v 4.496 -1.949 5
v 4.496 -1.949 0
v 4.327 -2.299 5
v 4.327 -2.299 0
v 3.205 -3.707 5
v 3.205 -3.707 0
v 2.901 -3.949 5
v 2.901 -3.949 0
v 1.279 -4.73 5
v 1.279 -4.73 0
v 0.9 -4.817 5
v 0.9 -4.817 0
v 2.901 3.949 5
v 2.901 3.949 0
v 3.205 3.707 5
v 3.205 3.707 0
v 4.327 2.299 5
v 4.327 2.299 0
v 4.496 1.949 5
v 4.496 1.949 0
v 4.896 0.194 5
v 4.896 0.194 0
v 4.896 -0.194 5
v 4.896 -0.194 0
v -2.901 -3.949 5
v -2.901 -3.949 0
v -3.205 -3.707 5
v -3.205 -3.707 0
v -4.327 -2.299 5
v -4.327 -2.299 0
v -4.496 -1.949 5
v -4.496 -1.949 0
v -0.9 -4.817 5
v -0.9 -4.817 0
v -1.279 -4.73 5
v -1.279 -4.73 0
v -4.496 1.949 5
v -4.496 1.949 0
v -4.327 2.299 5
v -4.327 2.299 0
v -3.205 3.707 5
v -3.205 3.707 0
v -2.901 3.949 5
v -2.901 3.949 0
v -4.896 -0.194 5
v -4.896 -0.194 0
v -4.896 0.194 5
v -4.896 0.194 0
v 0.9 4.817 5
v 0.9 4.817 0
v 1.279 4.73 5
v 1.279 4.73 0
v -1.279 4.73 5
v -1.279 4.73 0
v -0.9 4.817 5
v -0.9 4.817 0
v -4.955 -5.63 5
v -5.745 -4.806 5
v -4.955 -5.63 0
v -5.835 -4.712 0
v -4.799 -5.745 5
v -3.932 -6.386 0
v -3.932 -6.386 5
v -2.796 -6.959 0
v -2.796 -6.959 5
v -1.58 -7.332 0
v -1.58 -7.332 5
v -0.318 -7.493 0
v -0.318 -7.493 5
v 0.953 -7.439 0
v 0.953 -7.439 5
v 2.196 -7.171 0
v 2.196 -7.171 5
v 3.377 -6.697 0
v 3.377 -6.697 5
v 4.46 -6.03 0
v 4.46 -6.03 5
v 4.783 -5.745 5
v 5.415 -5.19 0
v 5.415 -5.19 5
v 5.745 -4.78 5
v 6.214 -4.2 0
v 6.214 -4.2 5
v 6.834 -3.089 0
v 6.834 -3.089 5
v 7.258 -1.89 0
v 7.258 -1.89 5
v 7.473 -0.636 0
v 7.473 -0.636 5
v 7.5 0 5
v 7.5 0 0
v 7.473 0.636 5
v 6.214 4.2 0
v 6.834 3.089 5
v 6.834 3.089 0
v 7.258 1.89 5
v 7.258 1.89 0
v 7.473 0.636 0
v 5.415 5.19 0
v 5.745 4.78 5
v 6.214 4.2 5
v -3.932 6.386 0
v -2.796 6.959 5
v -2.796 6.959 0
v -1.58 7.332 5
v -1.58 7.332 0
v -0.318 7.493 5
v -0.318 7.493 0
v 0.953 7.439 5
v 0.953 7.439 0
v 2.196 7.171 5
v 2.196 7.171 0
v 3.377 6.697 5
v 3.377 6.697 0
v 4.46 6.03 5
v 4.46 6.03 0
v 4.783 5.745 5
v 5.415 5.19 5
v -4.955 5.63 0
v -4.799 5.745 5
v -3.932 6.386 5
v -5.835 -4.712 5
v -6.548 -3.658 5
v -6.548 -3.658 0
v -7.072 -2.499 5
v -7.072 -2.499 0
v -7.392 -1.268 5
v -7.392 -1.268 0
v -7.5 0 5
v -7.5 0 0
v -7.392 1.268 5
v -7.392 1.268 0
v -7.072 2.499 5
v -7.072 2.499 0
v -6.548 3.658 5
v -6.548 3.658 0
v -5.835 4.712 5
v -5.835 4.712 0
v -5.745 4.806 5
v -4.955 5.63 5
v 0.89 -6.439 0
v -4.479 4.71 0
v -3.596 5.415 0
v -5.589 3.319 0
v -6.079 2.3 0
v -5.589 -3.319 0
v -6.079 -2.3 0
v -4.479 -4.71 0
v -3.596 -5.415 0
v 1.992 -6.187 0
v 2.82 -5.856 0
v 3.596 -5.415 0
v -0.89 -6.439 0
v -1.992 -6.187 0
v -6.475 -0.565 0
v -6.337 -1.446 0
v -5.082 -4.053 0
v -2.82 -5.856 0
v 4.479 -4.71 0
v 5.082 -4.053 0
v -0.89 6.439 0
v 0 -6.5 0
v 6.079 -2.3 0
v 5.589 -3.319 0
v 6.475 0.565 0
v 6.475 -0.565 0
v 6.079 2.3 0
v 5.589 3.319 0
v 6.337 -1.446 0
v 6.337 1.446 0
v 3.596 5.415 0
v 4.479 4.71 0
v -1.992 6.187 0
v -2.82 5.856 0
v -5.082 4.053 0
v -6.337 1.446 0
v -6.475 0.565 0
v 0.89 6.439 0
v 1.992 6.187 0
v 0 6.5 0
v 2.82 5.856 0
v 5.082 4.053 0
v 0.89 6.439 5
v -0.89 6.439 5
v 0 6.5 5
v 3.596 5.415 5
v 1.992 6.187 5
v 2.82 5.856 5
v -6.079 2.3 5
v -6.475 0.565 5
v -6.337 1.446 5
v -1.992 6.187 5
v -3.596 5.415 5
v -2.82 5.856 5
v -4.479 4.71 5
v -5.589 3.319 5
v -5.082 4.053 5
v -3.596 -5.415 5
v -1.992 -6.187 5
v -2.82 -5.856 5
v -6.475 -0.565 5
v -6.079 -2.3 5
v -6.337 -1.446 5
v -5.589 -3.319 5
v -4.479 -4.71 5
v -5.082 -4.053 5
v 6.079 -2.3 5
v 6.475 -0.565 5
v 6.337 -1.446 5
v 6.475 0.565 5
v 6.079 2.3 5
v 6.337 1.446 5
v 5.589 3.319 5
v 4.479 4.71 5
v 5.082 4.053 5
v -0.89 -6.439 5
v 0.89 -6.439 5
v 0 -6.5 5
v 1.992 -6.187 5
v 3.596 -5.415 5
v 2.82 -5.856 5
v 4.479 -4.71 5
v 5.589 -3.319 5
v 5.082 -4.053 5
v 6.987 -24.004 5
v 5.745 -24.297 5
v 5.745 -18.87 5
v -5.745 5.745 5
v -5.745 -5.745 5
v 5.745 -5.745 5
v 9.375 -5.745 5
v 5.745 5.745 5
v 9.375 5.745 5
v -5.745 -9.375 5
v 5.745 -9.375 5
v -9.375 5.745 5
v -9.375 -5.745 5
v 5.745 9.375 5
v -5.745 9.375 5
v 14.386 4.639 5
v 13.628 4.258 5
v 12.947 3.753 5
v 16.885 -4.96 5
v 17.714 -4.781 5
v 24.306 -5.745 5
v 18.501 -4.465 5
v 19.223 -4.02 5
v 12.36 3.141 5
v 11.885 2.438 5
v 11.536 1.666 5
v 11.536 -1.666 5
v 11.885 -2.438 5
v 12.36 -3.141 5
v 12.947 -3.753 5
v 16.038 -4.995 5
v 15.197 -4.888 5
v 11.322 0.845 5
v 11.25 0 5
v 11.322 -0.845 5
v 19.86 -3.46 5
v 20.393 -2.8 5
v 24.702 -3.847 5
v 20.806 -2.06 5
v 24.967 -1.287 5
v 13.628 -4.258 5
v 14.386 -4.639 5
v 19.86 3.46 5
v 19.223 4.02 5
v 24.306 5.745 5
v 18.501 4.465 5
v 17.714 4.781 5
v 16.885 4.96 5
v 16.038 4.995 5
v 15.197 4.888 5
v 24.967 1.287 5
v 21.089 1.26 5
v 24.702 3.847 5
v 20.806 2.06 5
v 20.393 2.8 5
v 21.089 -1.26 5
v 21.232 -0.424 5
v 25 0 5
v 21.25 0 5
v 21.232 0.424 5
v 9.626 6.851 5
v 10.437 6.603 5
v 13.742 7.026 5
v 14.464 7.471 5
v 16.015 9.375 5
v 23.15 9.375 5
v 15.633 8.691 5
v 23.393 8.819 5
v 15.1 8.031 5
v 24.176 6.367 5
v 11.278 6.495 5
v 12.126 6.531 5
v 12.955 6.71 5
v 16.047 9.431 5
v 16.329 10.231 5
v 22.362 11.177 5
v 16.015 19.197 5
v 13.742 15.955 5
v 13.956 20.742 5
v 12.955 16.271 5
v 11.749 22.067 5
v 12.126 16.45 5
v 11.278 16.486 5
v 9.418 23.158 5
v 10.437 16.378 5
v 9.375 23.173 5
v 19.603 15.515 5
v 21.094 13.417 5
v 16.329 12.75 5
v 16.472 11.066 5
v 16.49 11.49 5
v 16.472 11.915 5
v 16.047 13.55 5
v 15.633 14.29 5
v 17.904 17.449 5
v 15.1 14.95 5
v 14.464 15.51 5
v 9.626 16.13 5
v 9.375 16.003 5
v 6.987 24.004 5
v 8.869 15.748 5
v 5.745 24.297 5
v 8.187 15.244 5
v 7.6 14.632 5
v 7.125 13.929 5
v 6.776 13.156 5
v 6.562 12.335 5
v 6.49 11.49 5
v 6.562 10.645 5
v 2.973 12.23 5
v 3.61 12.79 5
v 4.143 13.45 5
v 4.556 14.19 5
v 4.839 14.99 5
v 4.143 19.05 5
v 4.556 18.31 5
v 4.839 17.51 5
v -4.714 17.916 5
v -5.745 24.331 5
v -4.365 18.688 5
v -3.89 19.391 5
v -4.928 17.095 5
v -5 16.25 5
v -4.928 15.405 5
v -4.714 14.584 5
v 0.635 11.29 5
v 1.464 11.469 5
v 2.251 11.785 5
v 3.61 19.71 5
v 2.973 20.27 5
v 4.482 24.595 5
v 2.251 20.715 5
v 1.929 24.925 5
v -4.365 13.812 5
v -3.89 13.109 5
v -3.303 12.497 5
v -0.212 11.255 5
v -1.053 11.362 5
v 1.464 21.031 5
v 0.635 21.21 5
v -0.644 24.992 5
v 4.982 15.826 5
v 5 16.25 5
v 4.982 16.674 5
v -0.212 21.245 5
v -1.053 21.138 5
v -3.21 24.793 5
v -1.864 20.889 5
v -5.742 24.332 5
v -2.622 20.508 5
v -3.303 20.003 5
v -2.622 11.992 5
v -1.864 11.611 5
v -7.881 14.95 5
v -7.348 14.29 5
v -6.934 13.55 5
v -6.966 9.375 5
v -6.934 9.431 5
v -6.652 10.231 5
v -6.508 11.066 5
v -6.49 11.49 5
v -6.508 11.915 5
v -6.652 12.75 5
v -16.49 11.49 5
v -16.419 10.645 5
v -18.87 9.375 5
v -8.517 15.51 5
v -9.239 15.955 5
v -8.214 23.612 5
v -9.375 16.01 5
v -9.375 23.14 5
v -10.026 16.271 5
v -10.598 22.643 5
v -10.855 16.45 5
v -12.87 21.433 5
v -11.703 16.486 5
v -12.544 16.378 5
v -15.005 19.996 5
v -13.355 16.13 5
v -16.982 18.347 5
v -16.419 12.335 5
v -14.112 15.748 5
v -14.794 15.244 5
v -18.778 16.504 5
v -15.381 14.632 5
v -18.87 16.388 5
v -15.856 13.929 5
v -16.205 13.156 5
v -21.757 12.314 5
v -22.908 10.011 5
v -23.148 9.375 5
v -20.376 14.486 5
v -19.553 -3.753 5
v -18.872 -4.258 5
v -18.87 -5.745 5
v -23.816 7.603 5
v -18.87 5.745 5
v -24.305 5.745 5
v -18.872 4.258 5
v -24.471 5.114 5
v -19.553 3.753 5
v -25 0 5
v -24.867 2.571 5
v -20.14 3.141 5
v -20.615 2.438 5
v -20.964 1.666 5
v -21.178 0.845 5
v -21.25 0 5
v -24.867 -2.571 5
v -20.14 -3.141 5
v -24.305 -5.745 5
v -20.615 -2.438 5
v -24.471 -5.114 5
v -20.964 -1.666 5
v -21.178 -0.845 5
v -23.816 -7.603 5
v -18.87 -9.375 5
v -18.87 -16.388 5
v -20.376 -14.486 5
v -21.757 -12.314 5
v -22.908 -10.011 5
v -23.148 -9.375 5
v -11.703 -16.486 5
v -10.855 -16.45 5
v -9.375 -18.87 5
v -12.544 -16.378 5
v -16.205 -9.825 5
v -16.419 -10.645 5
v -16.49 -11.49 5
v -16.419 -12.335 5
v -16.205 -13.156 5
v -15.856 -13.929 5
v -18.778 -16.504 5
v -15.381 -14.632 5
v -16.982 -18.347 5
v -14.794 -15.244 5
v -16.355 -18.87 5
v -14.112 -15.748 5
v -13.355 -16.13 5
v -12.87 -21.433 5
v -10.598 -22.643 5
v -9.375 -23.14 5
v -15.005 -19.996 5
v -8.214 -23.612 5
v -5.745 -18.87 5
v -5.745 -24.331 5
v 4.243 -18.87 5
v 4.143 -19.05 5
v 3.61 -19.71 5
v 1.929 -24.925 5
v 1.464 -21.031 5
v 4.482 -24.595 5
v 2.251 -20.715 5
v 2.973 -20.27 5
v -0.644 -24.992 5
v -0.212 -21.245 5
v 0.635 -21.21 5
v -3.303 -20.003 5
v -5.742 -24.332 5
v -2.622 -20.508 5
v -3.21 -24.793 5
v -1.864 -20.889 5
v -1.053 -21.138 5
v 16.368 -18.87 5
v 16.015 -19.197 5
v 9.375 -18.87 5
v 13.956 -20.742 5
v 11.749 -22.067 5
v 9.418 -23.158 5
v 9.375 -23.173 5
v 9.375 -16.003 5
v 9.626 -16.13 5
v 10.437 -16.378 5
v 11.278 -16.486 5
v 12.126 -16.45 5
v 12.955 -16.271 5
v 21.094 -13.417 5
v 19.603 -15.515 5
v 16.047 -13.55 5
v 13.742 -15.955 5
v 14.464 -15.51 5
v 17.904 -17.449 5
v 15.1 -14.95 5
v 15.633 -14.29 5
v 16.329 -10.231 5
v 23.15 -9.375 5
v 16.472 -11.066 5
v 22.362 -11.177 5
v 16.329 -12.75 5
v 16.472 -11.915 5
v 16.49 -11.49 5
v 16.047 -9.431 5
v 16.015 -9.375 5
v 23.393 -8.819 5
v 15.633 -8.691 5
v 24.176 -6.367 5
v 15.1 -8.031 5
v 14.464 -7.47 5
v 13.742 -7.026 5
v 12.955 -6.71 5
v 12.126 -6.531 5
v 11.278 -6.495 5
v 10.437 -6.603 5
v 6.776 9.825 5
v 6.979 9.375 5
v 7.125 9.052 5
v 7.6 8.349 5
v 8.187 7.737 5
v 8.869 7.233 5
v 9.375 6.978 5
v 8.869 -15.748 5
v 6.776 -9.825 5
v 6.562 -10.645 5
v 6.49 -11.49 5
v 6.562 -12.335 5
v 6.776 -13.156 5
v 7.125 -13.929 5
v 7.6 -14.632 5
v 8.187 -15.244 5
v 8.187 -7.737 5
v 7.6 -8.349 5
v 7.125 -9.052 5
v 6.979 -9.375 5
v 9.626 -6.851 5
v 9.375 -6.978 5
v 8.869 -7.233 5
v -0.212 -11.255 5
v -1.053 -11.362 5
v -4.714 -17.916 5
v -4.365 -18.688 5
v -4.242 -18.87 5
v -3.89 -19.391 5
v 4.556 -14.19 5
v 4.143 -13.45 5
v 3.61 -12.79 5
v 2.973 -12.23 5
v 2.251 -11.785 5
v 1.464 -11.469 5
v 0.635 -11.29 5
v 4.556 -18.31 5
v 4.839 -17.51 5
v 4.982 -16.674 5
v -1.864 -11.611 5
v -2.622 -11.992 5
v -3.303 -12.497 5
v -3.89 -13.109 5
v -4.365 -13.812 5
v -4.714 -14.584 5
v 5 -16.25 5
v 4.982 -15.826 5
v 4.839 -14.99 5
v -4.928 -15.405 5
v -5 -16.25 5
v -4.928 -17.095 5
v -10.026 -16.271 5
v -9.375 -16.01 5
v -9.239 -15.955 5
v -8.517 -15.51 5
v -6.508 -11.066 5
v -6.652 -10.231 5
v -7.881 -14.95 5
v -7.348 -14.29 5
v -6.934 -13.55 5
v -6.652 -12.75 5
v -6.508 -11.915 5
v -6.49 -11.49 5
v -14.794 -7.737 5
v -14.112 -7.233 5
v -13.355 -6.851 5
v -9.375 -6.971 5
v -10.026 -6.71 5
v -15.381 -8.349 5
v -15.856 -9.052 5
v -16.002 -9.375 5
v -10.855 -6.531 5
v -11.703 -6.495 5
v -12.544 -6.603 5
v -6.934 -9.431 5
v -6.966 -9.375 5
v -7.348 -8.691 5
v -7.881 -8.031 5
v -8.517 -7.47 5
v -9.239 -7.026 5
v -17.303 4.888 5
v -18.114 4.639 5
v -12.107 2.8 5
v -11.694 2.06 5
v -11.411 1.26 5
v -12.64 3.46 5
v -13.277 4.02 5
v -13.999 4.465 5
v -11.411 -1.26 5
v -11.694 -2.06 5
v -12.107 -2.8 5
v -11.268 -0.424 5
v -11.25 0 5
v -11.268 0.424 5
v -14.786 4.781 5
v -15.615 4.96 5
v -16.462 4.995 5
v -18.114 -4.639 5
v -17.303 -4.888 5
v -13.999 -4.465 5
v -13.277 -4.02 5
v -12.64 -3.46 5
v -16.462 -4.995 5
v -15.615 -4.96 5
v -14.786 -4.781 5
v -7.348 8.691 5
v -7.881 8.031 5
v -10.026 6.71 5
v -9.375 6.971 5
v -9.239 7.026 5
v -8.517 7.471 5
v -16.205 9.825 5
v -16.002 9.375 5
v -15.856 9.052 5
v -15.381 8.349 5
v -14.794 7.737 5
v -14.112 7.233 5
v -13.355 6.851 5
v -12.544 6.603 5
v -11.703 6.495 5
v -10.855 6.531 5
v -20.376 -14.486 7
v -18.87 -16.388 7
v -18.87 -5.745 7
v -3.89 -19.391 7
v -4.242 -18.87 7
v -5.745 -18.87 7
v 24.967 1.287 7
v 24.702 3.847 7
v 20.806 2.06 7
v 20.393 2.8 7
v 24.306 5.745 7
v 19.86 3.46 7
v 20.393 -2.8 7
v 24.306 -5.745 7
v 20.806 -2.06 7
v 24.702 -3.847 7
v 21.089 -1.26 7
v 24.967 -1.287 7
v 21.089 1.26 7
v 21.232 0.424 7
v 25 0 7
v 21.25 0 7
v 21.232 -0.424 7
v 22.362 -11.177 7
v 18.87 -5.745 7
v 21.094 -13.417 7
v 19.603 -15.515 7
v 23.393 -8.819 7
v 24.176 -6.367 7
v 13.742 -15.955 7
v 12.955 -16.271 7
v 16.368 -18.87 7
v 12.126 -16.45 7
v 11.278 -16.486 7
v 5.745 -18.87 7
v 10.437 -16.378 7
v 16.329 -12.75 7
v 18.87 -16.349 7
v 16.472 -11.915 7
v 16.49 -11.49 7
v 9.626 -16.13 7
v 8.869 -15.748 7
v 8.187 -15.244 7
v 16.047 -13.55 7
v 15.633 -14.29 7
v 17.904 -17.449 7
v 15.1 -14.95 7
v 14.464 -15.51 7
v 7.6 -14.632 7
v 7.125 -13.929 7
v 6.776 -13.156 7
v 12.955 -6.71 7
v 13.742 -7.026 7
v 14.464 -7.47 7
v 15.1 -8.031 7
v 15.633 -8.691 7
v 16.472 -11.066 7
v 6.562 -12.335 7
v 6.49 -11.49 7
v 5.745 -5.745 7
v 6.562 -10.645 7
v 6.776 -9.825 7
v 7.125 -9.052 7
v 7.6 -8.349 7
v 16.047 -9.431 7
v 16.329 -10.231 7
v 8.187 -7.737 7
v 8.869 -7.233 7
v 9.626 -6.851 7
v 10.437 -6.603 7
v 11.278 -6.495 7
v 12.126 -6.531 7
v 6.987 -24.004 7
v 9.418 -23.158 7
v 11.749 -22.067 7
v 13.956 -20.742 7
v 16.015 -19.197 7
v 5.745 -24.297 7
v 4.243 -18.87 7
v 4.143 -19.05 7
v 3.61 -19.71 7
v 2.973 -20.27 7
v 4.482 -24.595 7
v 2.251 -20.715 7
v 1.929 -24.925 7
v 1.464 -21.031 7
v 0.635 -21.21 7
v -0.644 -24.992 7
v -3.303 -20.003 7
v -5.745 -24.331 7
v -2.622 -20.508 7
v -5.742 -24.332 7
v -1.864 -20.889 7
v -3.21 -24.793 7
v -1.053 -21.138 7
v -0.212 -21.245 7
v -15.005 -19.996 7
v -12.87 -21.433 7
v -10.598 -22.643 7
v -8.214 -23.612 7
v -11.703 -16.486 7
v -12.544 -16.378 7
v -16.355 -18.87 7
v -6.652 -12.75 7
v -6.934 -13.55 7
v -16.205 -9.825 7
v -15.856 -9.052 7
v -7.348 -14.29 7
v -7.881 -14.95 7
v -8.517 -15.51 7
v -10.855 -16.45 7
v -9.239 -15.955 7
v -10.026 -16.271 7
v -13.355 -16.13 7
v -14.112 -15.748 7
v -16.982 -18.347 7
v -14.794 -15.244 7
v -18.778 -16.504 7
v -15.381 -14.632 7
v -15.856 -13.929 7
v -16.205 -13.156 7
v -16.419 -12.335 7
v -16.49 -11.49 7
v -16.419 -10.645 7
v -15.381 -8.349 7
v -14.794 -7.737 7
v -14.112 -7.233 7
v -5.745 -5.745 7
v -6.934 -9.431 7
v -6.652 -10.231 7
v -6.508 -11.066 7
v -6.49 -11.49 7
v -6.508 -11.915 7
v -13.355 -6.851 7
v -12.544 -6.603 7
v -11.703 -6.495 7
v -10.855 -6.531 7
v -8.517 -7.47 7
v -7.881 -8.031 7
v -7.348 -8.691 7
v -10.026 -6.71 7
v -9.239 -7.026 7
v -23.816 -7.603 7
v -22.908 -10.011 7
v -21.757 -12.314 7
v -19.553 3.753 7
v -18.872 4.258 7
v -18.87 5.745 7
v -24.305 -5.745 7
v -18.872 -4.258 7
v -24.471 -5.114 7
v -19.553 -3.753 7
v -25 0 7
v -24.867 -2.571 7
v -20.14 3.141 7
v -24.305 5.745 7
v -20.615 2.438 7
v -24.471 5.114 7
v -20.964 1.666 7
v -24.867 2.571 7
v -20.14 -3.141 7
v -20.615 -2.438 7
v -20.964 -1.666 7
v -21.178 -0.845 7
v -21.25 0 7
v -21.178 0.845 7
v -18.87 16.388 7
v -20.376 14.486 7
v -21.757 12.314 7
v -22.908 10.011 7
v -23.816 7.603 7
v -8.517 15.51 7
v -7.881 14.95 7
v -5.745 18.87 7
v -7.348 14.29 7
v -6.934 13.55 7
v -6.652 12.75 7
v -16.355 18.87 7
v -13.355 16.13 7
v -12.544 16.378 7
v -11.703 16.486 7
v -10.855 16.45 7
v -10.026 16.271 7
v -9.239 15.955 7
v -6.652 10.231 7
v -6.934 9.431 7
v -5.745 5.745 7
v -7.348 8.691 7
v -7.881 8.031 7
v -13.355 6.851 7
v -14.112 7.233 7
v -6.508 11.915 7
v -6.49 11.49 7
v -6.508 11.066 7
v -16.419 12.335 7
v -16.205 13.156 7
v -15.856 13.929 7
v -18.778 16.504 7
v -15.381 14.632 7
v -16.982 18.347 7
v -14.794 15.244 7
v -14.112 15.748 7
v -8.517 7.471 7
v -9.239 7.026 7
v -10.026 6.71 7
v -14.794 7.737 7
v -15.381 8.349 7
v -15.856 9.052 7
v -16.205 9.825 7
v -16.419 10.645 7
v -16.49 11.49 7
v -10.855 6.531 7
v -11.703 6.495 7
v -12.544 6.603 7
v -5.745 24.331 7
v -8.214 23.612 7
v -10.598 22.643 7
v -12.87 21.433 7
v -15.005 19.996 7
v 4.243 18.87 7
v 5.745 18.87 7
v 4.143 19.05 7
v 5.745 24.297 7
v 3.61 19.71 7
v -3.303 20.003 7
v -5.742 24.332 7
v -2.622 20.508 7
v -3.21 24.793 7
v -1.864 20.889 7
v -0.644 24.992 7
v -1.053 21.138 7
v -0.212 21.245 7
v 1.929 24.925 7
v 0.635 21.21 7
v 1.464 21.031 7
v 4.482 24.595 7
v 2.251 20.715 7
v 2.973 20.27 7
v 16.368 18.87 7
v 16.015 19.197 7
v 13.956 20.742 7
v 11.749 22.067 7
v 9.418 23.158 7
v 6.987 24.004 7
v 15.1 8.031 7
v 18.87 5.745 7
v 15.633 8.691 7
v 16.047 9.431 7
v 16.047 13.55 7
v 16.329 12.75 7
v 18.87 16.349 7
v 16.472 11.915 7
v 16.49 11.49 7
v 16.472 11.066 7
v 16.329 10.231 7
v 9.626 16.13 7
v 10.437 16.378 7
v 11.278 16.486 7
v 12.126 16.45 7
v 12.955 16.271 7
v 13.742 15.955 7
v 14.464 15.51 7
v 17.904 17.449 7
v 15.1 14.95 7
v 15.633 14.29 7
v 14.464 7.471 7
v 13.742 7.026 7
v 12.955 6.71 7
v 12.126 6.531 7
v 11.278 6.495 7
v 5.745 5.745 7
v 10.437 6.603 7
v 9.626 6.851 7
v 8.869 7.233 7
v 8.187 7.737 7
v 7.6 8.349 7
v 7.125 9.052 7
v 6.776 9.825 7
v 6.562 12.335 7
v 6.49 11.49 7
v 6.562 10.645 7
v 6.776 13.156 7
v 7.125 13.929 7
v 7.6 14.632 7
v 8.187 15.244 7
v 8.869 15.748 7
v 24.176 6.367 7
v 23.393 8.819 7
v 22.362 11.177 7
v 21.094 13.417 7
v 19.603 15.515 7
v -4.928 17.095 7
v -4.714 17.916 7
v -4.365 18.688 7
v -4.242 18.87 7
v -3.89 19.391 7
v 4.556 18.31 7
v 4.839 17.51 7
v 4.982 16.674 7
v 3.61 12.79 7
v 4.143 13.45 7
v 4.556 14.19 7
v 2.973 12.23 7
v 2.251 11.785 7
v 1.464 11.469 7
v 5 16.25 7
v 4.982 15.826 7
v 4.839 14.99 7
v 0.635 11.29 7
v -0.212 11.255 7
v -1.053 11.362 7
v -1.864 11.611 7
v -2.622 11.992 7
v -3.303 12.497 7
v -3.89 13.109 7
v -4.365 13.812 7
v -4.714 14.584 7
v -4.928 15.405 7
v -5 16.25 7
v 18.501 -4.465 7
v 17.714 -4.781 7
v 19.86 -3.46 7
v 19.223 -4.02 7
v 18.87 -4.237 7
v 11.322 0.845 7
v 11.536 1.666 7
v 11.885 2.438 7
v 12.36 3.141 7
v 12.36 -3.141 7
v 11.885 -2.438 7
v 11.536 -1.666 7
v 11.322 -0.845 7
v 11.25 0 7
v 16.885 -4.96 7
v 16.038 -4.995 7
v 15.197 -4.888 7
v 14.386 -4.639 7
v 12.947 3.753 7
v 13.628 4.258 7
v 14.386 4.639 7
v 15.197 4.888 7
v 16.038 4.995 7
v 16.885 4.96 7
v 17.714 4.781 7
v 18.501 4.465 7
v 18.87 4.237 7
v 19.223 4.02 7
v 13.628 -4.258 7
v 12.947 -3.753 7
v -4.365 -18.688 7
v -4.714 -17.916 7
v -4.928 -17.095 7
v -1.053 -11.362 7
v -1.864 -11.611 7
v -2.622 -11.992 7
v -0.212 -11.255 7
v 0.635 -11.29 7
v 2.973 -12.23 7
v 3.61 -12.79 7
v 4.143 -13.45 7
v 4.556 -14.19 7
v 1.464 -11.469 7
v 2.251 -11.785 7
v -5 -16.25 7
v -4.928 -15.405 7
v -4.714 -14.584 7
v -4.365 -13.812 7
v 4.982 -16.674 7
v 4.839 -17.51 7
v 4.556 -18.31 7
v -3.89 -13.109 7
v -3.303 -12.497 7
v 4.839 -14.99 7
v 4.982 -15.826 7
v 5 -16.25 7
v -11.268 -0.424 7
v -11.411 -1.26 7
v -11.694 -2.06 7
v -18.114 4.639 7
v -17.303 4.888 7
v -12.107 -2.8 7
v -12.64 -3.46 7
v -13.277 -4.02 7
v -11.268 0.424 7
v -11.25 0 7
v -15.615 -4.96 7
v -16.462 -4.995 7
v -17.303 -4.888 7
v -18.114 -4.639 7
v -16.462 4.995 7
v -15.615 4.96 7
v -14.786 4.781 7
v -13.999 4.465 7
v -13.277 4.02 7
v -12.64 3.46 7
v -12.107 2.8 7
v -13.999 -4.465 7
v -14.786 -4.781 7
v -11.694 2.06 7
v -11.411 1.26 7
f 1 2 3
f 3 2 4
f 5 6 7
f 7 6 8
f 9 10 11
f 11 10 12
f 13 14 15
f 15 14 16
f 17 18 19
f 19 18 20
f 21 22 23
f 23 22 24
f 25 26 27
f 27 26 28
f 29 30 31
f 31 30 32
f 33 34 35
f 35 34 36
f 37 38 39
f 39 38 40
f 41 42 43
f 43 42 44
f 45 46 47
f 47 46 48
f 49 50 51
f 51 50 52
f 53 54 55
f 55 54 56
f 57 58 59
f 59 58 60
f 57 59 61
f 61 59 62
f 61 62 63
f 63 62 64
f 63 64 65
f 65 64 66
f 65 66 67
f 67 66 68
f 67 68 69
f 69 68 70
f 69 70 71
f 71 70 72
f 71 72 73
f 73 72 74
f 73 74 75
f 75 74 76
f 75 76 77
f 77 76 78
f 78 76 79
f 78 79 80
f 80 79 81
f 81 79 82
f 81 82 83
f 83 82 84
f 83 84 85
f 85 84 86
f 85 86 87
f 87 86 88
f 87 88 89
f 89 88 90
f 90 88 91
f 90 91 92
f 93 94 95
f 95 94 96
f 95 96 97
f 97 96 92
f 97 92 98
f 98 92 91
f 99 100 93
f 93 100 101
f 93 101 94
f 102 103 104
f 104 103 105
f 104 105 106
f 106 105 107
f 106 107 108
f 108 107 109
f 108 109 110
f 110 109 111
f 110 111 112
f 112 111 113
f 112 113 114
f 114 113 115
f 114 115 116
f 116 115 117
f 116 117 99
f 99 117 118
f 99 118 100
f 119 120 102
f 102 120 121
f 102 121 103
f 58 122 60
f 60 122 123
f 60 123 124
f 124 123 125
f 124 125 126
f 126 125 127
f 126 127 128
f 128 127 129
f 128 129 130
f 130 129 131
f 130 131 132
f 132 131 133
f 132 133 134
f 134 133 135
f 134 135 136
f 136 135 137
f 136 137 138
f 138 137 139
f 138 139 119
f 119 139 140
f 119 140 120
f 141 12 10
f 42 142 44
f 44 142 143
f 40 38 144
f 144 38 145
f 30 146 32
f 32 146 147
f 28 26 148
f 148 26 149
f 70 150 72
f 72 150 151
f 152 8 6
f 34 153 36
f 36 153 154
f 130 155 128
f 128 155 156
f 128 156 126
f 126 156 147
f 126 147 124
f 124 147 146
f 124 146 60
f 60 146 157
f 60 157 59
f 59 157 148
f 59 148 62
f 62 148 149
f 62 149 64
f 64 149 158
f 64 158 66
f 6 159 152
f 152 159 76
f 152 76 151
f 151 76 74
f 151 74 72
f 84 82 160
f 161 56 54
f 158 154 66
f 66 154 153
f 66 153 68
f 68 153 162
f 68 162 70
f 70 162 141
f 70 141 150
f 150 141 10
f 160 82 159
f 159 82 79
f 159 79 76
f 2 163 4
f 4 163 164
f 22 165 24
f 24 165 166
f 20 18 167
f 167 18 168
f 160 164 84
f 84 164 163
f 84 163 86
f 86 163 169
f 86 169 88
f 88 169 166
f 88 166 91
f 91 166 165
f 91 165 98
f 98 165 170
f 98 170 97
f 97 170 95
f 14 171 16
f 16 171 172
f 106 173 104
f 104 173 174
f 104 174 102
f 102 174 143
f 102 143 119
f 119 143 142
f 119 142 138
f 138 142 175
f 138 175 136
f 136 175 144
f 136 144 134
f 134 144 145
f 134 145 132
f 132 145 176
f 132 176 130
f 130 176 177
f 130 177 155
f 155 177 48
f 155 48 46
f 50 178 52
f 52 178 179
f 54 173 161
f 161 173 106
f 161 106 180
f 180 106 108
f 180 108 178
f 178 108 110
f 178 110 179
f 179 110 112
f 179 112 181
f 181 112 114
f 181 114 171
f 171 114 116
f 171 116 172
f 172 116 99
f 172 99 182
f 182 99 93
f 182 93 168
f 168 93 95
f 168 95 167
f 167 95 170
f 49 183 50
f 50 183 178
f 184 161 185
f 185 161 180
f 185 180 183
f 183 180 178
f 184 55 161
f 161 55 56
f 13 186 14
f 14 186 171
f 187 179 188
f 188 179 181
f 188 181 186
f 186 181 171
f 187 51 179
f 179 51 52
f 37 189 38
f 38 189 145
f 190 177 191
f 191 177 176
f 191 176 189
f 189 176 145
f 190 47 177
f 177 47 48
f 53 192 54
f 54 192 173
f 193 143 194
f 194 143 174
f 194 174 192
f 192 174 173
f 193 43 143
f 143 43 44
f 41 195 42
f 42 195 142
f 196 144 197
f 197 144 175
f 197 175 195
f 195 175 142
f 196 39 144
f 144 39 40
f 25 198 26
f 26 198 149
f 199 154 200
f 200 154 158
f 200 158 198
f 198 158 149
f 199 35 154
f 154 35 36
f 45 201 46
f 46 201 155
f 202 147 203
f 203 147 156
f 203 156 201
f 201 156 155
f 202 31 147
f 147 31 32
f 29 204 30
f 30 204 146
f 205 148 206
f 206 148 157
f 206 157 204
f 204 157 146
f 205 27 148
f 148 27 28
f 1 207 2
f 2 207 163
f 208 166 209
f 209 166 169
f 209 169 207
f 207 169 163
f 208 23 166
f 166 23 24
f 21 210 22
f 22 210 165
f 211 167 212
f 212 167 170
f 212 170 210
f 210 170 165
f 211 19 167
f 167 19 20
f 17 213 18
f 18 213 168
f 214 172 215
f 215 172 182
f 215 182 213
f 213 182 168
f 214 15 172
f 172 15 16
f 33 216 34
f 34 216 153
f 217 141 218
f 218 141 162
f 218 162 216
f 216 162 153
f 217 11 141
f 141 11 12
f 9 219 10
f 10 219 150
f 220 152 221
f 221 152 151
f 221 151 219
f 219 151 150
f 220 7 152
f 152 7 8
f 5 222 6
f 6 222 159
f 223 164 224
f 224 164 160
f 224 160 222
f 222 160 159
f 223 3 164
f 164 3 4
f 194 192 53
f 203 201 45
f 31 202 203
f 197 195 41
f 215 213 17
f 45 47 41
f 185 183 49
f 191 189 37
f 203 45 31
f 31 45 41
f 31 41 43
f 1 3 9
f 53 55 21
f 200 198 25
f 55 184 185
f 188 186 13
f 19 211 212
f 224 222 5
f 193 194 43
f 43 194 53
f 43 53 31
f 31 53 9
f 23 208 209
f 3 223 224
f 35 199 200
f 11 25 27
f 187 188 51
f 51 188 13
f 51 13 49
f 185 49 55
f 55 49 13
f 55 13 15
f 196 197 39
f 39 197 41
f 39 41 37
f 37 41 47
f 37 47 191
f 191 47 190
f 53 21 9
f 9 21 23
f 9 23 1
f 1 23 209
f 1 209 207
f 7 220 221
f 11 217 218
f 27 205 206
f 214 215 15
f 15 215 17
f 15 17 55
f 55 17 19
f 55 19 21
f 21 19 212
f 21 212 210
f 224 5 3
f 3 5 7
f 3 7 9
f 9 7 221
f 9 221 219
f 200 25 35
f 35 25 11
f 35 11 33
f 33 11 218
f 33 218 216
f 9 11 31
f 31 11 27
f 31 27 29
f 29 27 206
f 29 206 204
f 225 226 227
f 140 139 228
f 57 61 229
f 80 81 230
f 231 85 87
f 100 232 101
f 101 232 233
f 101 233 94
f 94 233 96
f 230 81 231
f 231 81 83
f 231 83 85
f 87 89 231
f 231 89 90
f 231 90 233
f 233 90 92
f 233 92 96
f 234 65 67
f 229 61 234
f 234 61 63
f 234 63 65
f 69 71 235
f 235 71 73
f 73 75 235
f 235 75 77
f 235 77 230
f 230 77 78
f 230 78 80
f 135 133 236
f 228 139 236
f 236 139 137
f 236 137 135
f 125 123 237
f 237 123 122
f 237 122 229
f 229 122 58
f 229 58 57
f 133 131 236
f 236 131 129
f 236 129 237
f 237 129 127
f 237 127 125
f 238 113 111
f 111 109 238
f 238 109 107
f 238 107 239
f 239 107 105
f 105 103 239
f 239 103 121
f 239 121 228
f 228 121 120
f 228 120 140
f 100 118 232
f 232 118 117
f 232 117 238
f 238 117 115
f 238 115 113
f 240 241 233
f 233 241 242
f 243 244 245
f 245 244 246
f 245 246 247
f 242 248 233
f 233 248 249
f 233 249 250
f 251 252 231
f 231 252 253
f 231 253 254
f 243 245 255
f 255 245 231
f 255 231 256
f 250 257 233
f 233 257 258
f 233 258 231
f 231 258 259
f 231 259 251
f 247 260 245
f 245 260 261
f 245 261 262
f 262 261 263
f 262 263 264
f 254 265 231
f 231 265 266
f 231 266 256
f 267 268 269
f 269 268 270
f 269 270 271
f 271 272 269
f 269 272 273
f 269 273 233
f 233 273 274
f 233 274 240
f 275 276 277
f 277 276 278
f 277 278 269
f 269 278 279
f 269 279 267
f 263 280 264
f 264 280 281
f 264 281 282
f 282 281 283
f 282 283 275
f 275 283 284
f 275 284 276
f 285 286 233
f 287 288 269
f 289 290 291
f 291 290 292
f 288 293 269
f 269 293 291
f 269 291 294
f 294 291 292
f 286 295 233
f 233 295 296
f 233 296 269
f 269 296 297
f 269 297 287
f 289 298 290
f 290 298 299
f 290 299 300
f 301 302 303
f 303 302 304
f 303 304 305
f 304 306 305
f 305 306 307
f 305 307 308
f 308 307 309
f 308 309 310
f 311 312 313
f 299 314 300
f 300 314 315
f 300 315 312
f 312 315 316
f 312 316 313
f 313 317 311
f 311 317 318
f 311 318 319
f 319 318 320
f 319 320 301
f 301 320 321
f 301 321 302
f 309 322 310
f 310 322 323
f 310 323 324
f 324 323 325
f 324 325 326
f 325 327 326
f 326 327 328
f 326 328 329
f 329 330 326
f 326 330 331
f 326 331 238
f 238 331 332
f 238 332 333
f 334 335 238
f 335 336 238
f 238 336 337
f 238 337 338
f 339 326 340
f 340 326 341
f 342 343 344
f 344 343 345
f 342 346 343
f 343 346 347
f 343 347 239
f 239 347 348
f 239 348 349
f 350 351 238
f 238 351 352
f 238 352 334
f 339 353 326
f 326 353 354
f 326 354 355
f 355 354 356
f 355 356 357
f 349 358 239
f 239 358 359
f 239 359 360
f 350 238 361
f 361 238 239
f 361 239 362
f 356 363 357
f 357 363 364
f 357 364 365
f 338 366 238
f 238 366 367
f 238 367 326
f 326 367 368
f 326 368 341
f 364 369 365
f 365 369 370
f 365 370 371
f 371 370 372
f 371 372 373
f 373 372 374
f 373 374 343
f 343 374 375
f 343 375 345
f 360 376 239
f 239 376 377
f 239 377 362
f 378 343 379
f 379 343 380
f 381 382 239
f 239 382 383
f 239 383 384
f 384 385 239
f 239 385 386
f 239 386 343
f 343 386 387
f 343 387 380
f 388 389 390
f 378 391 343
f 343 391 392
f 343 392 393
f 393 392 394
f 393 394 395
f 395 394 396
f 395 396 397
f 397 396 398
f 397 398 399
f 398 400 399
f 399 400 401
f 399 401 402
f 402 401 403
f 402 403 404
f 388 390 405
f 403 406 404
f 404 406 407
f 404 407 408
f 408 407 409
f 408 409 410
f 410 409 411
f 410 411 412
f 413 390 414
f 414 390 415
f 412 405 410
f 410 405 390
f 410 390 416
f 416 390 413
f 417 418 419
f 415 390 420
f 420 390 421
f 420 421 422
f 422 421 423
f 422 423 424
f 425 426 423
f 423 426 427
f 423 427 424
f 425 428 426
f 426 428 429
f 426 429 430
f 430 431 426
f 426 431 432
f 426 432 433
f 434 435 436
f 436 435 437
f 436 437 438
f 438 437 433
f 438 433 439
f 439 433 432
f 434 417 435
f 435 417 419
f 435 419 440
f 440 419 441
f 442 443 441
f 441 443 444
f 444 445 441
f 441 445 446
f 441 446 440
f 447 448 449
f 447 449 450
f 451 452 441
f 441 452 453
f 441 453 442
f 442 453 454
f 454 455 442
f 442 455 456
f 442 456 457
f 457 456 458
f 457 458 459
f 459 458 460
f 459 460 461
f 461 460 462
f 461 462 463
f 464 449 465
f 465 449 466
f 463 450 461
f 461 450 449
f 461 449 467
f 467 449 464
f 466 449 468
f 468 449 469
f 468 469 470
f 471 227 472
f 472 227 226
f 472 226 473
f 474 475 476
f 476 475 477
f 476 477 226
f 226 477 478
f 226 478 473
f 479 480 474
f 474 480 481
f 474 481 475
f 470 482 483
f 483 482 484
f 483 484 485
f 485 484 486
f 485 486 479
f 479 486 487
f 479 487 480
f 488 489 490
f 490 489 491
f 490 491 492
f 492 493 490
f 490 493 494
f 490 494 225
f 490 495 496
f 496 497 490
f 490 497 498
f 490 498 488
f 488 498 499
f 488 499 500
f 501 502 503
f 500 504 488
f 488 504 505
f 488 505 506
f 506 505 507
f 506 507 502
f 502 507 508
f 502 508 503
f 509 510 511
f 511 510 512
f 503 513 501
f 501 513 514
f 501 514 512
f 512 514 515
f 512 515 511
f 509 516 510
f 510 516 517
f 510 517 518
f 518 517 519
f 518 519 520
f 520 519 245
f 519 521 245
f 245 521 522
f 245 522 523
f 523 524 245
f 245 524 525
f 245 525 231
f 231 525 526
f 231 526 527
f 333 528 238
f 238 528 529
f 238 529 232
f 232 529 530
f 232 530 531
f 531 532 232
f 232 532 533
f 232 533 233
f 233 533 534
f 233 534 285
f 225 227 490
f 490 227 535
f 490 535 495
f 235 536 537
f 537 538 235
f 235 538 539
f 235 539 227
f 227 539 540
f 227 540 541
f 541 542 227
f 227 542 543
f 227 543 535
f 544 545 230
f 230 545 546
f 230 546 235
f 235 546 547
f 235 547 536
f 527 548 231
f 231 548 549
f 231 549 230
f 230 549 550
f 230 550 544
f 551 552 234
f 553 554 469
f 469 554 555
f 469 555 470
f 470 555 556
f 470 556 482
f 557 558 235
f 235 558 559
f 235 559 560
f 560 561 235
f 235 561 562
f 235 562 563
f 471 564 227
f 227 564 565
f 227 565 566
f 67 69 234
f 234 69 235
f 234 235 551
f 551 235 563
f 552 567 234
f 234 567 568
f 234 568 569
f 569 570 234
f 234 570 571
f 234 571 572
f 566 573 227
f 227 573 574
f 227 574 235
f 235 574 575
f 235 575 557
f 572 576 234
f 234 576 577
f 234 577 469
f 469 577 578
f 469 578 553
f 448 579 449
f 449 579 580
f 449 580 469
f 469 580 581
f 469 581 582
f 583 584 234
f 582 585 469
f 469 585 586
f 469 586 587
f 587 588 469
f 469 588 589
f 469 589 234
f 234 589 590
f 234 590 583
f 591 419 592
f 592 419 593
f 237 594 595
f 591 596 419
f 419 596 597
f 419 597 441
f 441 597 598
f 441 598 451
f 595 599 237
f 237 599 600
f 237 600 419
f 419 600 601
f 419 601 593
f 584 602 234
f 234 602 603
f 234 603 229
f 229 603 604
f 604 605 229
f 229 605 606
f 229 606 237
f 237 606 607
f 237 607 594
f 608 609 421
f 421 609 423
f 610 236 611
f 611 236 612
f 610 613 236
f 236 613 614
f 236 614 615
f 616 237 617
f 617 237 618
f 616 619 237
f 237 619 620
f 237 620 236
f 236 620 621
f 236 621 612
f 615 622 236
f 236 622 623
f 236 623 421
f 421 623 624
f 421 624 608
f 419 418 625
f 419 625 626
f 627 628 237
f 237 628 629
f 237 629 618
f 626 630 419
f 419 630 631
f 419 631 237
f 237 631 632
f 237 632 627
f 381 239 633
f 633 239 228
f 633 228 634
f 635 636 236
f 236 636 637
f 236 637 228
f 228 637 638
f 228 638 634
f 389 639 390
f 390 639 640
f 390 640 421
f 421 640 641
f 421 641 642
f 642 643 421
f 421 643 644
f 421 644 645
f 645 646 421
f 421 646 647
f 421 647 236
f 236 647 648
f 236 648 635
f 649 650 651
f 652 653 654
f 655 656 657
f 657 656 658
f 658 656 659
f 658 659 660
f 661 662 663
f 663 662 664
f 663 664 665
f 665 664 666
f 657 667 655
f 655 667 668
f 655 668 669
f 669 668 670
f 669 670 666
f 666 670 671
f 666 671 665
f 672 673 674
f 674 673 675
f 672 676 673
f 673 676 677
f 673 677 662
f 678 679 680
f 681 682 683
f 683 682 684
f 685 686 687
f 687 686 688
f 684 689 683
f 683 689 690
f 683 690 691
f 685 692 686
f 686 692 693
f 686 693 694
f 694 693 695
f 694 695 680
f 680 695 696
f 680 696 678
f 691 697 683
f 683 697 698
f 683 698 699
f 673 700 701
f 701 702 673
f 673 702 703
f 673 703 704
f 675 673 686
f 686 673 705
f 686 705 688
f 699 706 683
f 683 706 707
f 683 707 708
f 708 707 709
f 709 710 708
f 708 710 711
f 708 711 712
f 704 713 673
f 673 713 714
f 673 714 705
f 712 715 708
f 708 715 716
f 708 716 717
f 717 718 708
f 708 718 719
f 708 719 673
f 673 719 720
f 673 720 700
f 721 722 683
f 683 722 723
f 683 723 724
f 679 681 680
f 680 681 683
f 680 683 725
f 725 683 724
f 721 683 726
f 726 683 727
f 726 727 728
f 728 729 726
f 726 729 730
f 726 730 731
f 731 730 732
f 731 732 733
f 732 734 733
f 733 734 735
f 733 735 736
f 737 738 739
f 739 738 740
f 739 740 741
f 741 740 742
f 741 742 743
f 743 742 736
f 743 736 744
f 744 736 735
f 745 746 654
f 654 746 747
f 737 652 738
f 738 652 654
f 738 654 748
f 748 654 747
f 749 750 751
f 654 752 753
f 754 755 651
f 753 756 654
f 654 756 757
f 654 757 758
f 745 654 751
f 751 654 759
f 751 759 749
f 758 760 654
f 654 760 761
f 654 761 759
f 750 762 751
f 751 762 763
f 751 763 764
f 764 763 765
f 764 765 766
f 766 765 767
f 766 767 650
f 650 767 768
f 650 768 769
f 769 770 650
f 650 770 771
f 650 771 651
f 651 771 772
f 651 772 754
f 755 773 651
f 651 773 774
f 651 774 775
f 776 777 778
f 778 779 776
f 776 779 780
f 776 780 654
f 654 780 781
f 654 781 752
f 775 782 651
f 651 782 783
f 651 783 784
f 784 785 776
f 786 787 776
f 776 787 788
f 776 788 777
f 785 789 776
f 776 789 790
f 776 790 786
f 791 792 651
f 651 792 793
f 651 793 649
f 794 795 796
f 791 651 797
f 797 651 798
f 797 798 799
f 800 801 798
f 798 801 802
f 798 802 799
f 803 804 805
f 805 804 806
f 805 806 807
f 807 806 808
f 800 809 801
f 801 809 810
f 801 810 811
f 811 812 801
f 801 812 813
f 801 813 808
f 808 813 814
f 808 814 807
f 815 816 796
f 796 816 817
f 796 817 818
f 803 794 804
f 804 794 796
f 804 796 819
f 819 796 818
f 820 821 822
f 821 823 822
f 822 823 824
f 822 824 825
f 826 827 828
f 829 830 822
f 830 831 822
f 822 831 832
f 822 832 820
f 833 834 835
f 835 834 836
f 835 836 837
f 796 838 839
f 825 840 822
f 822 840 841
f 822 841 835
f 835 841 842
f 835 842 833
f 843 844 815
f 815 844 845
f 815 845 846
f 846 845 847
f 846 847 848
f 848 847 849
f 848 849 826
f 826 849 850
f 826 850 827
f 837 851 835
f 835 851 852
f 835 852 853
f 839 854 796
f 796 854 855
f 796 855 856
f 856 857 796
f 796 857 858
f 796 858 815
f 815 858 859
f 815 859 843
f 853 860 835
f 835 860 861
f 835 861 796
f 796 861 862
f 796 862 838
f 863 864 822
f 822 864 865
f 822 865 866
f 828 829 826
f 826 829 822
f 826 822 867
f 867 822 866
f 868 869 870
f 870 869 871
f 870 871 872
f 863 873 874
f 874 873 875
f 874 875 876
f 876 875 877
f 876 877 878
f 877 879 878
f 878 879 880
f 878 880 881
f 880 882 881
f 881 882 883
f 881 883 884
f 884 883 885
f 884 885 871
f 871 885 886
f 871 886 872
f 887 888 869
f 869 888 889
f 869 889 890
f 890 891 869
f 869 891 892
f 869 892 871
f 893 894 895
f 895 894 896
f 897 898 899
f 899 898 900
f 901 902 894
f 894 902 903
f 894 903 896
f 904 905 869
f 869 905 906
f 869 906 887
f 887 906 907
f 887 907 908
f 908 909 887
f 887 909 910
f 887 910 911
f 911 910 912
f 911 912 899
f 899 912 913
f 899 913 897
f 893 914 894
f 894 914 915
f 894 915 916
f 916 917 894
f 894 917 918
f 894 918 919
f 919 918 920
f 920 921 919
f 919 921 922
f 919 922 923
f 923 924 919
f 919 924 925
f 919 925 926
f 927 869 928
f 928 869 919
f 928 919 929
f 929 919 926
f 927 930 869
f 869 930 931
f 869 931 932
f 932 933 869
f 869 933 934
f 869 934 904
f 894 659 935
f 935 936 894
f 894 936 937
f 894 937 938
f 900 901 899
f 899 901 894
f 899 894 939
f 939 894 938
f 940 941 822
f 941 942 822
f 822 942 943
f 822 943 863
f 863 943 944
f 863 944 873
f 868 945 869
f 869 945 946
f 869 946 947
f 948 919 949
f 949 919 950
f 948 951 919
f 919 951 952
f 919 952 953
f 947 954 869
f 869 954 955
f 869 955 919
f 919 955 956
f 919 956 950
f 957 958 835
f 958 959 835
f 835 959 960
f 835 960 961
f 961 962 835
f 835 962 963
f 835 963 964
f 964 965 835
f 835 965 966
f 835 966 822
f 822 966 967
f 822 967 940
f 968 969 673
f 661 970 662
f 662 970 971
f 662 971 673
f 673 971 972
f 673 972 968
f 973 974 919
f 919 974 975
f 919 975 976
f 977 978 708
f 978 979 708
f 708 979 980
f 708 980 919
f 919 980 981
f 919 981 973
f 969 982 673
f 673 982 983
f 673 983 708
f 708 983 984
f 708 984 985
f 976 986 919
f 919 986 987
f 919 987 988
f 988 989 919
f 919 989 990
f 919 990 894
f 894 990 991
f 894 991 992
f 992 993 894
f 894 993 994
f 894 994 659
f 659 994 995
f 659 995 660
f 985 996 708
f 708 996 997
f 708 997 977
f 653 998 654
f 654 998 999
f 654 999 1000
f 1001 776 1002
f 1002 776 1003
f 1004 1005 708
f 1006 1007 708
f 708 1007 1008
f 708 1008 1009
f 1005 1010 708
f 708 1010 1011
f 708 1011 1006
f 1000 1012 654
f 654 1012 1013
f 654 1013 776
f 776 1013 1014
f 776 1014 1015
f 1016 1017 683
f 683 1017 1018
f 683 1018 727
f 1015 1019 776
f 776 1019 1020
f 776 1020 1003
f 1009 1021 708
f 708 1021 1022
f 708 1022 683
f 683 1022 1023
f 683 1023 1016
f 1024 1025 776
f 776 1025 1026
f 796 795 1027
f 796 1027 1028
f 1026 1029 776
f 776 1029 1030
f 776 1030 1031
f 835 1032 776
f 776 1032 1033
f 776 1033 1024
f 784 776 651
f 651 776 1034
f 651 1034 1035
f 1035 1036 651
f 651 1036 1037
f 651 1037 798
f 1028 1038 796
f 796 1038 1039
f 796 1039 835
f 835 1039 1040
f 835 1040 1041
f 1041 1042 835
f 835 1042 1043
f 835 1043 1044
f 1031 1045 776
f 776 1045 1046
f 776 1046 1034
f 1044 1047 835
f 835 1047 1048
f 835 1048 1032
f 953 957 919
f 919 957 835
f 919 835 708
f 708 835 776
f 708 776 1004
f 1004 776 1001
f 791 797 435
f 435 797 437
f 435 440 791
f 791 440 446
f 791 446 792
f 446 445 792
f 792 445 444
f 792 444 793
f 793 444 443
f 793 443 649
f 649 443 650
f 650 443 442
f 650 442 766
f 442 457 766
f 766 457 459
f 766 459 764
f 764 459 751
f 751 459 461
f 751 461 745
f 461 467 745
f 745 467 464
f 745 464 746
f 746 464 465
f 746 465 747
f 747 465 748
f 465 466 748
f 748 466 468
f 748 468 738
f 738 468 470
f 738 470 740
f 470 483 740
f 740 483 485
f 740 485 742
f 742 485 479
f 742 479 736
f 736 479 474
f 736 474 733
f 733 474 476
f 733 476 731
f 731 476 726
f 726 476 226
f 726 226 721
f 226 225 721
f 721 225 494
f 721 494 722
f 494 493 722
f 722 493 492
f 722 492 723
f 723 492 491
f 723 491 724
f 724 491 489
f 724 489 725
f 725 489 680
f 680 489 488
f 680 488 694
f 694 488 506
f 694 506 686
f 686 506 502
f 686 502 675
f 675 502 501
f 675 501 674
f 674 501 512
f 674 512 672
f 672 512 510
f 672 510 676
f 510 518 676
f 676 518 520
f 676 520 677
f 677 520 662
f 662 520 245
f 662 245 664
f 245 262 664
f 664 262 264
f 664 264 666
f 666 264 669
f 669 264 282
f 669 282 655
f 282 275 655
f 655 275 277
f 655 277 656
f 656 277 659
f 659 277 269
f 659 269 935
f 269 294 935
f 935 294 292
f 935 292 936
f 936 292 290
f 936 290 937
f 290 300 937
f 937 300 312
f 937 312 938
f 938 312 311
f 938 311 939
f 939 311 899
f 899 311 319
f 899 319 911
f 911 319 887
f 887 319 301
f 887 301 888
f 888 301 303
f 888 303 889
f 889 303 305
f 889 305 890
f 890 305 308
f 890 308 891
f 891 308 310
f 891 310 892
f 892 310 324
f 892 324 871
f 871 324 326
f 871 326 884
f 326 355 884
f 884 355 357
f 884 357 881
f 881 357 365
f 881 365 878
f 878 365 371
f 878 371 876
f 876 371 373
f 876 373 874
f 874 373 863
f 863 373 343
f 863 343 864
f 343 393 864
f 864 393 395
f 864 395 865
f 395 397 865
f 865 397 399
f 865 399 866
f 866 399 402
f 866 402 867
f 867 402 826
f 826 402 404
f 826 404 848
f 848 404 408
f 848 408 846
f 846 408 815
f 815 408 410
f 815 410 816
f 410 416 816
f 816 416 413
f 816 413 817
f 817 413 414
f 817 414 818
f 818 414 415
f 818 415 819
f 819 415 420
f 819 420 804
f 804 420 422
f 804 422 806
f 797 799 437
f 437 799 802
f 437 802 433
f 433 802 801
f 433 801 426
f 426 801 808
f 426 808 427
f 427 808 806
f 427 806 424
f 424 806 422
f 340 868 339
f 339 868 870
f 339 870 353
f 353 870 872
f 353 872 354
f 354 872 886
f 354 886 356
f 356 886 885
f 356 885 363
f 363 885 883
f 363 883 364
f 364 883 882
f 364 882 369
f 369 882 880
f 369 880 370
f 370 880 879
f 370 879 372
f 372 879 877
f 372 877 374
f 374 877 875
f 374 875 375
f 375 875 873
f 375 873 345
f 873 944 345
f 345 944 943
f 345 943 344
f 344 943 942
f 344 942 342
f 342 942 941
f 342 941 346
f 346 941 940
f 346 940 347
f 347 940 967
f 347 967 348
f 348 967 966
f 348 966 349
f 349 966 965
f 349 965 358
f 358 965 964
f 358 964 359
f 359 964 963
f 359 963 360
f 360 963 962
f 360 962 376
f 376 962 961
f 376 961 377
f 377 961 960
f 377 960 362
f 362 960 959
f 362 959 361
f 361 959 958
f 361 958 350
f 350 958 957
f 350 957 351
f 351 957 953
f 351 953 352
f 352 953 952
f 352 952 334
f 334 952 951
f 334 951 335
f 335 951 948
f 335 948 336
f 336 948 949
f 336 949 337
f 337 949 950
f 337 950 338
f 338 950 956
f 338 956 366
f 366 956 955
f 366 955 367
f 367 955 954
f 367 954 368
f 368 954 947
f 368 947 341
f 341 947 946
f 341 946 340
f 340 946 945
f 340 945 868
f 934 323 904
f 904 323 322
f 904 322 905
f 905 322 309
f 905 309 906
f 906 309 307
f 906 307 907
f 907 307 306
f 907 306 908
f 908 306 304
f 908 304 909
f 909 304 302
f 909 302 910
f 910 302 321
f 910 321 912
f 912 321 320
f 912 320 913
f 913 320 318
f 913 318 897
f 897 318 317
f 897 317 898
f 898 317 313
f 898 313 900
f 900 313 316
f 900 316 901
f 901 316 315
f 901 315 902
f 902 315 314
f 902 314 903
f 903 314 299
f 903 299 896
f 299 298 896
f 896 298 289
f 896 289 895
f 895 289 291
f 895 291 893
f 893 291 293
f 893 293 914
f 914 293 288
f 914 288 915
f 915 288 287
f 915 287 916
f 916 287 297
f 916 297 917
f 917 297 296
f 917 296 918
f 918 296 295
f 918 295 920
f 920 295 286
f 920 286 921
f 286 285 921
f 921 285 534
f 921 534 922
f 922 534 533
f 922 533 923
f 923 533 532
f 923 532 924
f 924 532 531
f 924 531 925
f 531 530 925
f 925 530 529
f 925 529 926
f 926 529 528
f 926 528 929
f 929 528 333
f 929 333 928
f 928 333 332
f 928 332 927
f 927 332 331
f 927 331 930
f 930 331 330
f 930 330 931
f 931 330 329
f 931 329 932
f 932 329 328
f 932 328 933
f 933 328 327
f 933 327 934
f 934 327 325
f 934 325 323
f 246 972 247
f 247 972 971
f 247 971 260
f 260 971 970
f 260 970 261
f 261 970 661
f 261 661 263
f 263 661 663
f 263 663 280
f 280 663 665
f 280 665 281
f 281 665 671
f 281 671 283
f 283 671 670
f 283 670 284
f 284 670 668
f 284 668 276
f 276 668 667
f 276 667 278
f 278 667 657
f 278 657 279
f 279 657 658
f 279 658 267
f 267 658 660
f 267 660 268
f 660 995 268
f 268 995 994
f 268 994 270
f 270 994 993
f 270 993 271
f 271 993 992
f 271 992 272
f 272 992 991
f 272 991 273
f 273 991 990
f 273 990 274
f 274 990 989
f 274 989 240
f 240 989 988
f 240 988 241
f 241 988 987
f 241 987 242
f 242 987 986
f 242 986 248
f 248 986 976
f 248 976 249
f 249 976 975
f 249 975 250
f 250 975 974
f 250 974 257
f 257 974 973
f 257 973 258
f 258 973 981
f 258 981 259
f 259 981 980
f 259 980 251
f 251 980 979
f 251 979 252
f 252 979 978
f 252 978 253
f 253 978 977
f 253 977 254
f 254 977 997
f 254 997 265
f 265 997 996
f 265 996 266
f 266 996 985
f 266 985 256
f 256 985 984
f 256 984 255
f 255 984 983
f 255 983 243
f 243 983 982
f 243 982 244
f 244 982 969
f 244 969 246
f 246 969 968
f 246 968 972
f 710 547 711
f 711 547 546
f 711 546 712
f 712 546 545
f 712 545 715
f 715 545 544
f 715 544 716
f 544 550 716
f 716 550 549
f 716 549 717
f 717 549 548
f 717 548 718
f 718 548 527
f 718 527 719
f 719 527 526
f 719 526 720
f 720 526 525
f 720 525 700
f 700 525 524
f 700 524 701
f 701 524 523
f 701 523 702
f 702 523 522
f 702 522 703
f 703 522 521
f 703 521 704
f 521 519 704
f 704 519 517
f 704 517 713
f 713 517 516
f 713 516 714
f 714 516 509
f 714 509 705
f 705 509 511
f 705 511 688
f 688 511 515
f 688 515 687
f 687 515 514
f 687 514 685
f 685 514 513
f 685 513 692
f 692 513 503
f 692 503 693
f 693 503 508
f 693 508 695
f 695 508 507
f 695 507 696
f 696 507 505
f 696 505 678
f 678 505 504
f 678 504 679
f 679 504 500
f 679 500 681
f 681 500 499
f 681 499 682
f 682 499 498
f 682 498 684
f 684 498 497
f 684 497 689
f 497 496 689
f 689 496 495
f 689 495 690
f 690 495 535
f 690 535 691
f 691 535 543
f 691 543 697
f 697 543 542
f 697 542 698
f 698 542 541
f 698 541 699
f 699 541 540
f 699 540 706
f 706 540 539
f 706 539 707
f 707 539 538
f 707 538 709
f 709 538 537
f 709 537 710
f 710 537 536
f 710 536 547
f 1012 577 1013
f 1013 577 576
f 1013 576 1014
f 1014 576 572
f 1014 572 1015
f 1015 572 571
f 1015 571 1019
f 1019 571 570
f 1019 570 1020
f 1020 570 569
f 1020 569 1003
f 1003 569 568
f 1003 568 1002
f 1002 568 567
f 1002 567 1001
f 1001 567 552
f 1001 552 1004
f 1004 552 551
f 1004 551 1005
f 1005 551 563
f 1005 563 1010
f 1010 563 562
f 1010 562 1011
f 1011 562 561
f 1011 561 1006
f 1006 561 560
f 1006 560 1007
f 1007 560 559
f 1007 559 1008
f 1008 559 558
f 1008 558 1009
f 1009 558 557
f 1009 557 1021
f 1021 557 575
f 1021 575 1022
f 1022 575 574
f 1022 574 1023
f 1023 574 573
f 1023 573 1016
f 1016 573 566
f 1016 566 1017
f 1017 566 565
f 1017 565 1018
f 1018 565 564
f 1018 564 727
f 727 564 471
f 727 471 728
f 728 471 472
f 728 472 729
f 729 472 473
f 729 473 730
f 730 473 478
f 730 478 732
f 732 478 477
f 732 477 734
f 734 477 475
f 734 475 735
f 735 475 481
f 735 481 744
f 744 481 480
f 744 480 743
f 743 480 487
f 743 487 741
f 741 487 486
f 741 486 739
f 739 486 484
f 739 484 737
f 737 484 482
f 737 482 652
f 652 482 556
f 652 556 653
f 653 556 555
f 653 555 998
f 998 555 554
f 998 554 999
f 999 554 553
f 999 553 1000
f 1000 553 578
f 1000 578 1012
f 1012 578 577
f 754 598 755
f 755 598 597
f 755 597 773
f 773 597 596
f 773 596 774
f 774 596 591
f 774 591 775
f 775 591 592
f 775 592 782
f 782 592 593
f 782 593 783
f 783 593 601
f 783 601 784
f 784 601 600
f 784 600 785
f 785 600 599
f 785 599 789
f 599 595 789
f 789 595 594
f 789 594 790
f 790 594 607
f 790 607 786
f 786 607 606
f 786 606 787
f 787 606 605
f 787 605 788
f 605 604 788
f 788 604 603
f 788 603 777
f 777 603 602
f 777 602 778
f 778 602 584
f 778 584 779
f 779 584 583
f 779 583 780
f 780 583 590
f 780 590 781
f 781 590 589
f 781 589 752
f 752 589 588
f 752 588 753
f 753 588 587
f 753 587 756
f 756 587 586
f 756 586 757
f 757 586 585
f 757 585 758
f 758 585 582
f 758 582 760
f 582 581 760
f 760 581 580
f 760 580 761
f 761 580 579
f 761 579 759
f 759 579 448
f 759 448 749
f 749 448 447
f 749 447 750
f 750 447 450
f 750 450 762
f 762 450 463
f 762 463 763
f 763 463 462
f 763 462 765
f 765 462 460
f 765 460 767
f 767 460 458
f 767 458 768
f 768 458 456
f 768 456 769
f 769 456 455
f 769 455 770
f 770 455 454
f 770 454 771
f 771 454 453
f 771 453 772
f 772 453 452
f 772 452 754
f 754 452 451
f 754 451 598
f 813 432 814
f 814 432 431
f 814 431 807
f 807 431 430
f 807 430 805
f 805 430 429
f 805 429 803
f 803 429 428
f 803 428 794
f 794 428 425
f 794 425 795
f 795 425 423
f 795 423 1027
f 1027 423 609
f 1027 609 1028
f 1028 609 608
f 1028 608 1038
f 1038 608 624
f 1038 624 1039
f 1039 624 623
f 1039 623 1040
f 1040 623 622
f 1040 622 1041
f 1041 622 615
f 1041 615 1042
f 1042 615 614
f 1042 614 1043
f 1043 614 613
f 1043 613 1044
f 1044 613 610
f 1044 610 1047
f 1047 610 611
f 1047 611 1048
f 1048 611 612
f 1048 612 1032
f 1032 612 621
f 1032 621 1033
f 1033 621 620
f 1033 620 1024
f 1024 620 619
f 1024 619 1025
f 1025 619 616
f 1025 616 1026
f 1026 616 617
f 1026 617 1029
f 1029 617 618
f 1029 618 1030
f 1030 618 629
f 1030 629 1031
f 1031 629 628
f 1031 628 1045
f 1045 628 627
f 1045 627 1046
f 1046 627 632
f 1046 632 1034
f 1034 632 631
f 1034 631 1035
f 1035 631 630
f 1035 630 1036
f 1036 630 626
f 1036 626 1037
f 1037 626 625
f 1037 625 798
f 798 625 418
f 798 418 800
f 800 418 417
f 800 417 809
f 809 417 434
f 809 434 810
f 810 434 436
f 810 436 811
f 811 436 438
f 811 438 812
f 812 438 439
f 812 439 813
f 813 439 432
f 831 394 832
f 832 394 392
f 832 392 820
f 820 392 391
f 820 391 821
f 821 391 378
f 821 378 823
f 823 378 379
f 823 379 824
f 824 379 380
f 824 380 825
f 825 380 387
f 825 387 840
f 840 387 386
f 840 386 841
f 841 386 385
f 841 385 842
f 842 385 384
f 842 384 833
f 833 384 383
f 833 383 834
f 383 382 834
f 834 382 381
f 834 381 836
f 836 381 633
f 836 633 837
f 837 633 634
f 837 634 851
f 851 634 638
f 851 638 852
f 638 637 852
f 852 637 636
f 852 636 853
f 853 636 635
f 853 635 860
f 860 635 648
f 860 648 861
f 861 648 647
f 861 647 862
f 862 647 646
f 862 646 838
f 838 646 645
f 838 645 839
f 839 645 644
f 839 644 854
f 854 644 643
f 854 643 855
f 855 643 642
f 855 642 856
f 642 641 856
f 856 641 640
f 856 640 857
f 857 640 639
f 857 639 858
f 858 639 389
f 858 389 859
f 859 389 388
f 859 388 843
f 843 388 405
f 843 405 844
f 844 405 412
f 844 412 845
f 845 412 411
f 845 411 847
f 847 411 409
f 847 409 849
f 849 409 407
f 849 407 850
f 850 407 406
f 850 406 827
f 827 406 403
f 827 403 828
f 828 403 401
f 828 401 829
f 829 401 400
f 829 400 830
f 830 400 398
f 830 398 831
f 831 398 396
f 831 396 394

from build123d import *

# Parameters (mm, degrees)
ESBO_O1_R                = 7.5
ESBO_O1_R_2              = 4.9
RESSALTO_EXTRUS_O1_DEPTH = 5
CORTE_EXTRUS_O1_DEPTH    = 5
PADR_OCIRCULAR2_COUNT    = 14
ESBO_O2_R                = 25
ESBO_O2_R_2              = 5
RESSALTO_EXTRUS_O2_DEPTH = 2


with BuildPart() as part:
    # Esboço1 → Ressalto-extrusão1 (new body)
    with BuildSketch(Plane.XY):
        Circle(ESBO_O1_R)
        Circle(ESBO_O1_R_2, mode=Mode.SUBTRACT)
    extrude(amount=RESSALTO_EXTRUS_O1_DEPTH)

    # Esboço1<3> → Corte-extrusão1 (cut)
    with BuildSketch(Plane.XY):
        with BuildLine():
            Line((0.9, 4.816637832), (0.89, 6.438780941))
            ThreePointArc((0.89, 6.438780941), (0, 6.5), (-0.89, 6.438780941))
            Line((-0.89, 6.438780941), (-0.9, 4.816637832))
            ThreePointArc((-0.9, 4.816637832), (0, 4.9), (0.9, 4.816637832))
        make_face()
    corte_extrus_o1 = extrude(amount=CORTE_EXTRUS_O1_DEPTH, mode=Mode.SUBTRACT)

    # PadrãoCircular2: Corte-extrusão1 ×14 about axis
    padr_ocircular2_axis = Axis((0, 0, 5), (0, 0, -1))
    for i in range(1, PADR_OCIRCULAR2_COUNT):
        add(corte_extrus_o1.rotate(padr_ocircular2_axis, i * 360 / PADR_OCIRCULAR2_COUNT), mode=Mode.SUBTRACT)

    # Esboço2 → Ressalto-extrusão2 (add)
    with BuildSketch(Plane.XY.offset(5)):
        Circle(ESBO_O2_R)
        with Locations((0, 16.25)):
            Circle(ESBO_O2_R_2, mode=Mode.SUBTRACT)
        with Locations((11.490485194, 11.490485194)):
            Circle(ESBO_O2_R_2, mode=Mode.SUBTRACT)
        with Locations((16.25, 0)):
            Circle(ESBO_O2_R_2, mode=Mode.SUBTRACT)
        with Locations((11.490485194, -11.490485194)):
            Circle(ESBO_O2_R_2, mode=Mode.SUBTRACT)
        with Locations((0, -16.25)):
            Circle(ESBO_O2_R_2, mode=Mode.SUBTRACT)
        with Locations((-11.490485194, -11.490485194)):
            Circle(ESBO_O2_R_2, mode=Mode.SUBTRACT)
        with Locations((-16.25, 0)):
            Circle(ESBO_O2_R_2, mode=Mode.SUBTRACT)
        with Locations((-11.490485194, 11.490485194)):
            Circle(ESBO_O2_R_2, mode=Mode.SUBTRACT)
    extrude(amount=RESSALTO_EXTRUS_O2_DEPTH)


solid = part.part
